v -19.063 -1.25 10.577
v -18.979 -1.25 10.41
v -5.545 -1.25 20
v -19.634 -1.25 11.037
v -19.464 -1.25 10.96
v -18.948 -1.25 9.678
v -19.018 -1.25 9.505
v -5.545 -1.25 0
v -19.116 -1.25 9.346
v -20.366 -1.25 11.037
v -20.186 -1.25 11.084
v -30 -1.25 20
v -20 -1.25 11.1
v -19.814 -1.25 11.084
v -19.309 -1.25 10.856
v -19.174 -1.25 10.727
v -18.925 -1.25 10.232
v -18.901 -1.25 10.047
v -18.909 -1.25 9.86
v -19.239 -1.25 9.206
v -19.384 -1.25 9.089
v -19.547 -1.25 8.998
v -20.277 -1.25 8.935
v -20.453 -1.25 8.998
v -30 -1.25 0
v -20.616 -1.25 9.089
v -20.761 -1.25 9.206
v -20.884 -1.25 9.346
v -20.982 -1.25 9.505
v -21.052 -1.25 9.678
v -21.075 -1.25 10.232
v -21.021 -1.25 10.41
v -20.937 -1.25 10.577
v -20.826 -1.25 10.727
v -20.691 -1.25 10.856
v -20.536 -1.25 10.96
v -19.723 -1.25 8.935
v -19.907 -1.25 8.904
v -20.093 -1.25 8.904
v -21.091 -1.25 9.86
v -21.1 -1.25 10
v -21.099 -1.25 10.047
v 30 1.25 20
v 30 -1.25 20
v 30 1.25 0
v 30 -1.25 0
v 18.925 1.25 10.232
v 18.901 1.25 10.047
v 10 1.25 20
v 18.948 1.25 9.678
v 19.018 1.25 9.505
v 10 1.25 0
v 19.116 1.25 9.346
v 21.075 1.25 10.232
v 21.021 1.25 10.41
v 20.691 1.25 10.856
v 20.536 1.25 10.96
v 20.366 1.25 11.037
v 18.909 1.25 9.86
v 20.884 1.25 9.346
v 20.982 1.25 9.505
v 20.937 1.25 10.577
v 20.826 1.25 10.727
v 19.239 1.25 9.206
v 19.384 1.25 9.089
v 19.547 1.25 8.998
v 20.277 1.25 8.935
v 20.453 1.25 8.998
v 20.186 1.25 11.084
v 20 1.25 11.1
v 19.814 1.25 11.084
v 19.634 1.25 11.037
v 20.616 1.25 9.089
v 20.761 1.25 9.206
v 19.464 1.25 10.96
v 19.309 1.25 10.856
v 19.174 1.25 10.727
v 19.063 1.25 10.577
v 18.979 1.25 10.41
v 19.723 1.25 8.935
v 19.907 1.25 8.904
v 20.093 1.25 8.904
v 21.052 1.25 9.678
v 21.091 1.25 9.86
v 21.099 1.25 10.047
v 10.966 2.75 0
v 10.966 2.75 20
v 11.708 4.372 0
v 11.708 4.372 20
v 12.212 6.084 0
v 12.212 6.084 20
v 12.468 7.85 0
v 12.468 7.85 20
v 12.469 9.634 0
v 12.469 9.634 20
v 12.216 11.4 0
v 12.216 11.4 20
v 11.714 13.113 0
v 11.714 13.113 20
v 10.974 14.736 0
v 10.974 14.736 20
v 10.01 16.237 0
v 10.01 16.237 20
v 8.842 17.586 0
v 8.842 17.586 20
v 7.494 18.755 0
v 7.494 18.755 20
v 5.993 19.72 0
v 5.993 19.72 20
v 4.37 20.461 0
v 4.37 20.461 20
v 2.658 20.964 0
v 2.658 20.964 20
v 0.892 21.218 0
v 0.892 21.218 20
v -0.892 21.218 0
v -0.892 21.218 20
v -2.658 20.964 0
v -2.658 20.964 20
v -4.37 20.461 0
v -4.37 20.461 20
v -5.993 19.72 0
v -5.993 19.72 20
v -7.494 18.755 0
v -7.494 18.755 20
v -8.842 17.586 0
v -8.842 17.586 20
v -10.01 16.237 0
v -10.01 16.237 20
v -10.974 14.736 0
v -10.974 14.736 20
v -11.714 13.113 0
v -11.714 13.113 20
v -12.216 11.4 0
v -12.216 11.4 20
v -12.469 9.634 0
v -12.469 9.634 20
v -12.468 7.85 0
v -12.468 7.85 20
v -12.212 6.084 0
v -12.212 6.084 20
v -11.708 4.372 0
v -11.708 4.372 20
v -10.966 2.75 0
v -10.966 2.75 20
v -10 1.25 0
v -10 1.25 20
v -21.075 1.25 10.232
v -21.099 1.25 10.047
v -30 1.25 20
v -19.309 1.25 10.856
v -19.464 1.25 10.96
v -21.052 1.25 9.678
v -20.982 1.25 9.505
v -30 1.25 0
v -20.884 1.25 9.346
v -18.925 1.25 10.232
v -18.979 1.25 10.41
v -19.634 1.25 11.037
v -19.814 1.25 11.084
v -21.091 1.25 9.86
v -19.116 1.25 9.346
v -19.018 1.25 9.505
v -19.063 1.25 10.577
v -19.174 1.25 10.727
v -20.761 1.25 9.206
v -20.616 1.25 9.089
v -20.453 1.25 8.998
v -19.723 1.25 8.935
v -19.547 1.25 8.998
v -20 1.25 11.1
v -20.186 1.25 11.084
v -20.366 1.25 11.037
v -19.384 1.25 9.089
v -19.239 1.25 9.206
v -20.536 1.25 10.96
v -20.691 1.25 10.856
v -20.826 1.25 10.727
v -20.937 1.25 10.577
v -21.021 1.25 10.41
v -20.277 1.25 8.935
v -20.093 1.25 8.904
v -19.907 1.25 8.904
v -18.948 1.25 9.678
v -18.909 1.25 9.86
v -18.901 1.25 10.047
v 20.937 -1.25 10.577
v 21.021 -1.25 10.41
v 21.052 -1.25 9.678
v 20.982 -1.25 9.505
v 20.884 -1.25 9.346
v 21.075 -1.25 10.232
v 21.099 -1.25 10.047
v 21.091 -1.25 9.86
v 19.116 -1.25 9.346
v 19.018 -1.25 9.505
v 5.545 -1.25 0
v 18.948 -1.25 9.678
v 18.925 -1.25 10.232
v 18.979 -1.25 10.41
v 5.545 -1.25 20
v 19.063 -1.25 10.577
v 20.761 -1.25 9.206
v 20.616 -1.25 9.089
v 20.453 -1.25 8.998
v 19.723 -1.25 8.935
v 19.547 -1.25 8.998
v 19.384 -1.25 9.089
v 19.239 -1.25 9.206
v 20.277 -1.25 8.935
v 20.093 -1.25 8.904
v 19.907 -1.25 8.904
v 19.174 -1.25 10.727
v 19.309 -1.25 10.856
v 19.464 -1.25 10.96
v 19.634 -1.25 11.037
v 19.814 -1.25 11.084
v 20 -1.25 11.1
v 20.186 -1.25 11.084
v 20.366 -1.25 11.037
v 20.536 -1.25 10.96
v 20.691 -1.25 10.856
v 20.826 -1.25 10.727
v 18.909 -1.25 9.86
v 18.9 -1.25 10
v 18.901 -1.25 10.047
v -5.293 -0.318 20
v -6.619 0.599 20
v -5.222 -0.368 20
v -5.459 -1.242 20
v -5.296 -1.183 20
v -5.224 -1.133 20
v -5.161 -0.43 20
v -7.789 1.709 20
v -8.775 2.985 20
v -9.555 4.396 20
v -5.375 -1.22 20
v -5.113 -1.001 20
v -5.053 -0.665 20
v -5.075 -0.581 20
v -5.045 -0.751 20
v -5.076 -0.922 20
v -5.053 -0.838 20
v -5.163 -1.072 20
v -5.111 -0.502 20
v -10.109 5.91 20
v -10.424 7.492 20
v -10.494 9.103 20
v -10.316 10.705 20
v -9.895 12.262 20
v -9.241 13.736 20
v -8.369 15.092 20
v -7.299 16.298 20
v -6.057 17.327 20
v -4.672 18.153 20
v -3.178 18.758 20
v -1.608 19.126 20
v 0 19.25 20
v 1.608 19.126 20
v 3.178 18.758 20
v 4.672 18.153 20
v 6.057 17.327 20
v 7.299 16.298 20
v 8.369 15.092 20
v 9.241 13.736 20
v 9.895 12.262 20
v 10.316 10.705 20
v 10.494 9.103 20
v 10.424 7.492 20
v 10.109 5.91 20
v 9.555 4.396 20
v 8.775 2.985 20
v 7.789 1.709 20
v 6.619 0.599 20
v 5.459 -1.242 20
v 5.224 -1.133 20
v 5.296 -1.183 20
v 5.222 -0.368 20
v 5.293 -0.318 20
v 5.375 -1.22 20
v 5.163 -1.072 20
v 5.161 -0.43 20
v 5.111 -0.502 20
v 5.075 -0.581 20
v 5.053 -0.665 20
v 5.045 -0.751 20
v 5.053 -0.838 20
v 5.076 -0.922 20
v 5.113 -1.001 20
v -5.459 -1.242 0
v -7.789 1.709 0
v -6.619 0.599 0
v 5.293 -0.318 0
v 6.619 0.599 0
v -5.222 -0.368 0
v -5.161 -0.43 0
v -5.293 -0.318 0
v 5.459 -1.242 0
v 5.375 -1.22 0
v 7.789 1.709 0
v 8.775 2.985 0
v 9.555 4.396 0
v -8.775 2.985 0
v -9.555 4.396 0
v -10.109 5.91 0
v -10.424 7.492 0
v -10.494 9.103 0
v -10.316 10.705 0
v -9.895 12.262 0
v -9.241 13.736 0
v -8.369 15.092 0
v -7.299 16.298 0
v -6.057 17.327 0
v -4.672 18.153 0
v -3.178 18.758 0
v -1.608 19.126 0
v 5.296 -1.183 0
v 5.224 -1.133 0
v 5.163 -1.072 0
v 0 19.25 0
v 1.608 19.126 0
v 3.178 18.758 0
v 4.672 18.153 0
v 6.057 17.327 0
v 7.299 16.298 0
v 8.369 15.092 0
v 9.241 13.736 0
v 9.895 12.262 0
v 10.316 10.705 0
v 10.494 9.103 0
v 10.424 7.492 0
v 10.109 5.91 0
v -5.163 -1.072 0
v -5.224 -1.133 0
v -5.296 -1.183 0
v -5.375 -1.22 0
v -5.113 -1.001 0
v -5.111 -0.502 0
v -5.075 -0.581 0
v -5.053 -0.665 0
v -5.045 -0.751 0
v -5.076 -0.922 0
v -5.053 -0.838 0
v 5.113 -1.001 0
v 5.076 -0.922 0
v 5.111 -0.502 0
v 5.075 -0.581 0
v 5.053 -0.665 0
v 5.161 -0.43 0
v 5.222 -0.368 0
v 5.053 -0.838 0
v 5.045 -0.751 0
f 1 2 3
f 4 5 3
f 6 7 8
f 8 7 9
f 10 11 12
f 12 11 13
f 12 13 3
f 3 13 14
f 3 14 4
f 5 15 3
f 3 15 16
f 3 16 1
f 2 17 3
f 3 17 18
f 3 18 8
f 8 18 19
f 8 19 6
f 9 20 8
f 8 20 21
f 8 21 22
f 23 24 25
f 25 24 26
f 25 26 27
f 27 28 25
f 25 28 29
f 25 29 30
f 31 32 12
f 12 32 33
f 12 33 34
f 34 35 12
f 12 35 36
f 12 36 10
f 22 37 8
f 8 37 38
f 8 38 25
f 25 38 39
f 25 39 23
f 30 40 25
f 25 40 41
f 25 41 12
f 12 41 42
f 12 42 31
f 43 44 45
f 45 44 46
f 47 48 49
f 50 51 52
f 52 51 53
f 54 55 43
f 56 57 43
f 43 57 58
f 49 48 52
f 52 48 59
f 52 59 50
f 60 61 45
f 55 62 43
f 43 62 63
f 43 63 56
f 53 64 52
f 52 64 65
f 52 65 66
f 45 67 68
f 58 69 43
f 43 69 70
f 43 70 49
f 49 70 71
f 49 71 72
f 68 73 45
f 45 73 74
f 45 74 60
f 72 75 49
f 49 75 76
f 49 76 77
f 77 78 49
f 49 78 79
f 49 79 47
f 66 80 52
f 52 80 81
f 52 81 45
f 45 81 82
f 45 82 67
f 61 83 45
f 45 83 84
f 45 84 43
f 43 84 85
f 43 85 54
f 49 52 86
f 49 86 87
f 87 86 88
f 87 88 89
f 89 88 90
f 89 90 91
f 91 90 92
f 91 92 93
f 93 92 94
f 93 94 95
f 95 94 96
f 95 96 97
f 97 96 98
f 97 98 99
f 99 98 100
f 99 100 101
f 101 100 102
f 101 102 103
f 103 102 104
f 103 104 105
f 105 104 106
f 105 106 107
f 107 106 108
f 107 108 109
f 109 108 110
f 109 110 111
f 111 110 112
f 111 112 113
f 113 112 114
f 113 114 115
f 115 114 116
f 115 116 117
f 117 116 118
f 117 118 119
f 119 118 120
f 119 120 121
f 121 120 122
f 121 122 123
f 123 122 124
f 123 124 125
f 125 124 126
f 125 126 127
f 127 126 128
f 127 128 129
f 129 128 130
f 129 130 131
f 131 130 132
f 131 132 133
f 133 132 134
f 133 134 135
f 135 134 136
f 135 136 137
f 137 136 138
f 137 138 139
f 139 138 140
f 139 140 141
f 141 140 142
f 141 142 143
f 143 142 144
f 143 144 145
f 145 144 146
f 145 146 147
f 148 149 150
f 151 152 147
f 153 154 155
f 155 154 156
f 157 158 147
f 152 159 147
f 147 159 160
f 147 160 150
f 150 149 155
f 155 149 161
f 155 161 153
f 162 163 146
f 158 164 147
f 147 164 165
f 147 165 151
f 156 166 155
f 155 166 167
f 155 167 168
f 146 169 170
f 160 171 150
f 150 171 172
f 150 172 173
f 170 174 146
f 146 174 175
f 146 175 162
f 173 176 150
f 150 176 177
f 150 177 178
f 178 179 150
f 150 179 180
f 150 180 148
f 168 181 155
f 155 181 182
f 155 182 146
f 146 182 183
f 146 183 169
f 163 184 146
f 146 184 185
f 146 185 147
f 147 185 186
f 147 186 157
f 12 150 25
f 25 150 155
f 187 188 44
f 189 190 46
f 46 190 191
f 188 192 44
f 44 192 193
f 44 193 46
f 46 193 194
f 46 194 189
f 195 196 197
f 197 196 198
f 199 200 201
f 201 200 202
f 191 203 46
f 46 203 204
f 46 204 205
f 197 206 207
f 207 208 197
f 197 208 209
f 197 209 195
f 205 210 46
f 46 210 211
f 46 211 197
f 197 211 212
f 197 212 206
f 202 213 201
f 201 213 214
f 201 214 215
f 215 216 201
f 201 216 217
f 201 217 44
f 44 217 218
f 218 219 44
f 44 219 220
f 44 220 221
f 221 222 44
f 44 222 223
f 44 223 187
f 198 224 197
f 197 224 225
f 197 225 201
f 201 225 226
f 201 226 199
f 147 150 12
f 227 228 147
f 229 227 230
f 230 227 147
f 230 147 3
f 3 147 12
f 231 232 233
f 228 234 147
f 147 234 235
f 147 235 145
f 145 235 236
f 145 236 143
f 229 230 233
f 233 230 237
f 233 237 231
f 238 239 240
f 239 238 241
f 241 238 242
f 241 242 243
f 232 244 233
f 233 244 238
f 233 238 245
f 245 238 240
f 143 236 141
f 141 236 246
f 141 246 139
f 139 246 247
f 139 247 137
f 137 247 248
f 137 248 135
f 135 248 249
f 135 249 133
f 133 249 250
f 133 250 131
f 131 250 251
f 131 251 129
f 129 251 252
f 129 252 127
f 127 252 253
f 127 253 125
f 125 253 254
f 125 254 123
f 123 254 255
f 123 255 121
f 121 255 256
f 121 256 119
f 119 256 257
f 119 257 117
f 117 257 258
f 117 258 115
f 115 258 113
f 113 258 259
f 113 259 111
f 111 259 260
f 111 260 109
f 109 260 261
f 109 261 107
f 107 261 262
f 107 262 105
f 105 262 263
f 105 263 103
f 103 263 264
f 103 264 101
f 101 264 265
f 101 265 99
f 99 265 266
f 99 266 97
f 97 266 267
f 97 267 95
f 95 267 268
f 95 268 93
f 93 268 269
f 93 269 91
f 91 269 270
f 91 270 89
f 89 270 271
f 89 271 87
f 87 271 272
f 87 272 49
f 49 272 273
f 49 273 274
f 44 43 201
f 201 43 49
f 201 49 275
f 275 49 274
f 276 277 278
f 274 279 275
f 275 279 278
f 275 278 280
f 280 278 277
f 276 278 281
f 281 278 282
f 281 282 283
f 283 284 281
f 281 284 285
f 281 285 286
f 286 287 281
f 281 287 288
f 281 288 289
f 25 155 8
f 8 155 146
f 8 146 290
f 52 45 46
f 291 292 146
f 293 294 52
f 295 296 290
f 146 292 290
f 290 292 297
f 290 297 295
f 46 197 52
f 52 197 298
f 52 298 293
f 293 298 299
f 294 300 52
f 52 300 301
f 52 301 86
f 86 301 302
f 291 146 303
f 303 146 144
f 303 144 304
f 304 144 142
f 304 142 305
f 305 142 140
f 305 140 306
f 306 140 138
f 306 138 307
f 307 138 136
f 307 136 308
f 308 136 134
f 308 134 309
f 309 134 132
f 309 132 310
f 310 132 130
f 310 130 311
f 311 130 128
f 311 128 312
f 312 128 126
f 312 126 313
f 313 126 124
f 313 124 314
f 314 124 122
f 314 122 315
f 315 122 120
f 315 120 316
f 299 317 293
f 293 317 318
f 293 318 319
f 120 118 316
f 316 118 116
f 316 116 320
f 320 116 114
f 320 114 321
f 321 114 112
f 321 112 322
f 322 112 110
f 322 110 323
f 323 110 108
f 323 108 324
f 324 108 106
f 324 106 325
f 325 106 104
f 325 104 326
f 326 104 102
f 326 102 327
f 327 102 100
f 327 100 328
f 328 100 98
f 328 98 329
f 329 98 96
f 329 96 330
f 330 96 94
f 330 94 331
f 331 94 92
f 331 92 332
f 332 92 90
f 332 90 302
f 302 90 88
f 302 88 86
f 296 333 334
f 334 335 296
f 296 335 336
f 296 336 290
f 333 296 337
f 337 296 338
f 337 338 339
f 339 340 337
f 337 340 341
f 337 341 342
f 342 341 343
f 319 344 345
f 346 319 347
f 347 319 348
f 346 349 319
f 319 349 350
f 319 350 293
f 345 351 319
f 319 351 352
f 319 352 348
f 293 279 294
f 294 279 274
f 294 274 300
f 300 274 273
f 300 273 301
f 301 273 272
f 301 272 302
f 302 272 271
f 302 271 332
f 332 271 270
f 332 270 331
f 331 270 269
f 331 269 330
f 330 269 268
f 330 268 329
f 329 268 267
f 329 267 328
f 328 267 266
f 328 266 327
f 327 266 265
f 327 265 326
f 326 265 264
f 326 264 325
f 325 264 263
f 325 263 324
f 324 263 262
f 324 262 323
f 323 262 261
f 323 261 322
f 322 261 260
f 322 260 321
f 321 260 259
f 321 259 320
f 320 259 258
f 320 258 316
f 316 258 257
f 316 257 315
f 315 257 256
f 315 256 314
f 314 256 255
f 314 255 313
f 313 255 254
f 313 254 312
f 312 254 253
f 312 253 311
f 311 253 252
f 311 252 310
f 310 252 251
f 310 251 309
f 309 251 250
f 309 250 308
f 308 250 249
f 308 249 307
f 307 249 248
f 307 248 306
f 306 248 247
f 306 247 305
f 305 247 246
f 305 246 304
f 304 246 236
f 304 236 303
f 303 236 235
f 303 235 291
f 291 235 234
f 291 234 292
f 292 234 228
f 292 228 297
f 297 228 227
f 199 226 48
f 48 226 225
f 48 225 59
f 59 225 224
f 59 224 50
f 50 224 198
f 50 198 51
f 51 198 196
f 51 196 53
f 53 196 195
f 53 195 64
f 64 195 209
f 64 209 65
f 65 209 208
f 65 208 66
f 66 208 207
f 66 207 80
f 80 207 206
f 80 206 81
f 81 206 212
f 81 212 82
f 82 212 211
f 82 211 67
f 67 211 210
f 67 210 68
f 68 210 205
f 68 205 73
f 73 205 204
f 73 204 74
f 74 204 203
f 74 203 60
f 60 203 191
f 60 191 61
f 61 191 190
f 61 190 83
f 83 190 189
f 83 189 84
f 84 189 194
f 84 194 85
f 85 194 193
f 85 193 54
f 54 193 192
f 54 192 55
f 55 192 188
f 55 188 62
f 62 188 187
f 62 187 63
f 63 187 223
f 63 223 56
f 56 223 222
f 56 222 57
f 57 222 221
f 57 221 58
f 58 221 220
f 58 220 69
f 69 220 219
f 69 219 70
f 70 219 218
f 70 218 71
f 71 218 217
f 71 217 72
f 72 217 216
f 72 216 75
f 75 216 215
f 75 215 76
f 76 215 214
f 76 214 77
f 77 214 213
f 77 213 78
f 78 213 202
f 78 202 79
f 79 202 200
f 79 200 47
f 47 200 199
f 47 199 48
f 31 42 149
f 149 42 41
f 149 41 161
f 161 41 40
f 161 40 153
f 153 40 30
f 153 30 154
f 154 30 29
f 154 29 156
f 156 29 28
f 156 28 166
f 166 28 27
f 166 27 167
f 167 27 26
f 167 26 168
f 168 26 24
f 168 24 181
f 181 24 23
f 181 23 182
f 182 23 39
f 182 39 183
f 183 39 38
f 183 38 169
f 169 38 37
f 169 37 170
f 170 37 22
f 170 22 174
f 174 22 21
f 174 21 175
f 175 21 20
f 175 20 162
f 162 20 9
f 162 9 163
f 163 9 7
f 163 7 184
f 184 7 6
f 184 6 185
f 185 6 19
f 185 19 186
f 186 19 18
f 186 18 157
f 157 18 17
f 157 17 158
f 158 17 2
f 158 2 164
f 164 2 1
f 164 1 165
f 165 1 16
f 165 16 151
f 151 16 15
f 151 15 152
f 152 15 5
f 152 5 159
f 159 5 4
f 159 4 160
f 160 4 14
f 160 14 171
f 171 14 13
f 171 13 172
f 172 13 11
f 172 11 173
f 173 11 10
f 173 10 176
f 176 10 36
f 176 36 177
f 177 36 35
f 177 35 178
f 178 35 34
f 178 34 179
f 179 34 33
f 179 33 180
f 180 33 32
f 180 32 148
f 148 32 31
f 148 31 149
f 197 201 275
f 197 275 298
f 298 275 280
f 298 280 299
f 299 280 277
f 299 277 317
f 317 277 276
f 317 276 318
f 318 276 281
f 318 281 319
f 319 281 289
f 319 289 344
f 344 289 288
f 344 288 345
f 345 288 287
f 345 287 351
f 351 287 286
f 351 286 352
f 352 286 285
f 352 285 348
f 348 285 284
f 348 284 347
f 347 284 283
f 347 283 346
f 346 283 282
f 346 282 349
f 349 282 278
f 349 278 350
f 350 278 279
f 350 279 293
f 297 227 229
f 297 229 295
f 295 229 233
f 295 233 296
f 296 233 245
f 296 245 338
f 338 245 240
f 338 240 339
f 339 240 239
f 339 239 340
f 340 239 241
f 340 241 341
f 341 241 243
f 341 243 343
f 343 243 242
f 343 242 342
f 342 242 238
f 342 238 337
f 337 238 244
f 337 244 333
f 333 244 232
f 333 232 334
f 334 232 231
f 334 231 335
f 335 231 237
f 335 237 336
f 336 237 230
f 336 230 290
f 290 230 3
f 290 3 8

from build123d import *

# Parameters (mm, degrees)
BOSS_EXTRUDE1_DEPTH = 20
SKETCH3_R           = 10.5
CUT_EXTRUDE1_DEPTH  = 42.851672607
SKETCH4_R           = 1.1
CUT_EXTRUDE2_DEPTH  = 2.5
FILLET1_R           = 0.5


with BuildPart() as part:
    # Sketch1 → Boss-Extrude1 (new body)
    with BuildSketch(Plane.XY):
        with BuildLine():
            Line((10, 1.25), (30, 1.25))
            Line((30, 1.25), (30, -1.25))
            Line((30, -1.25), (-30, -1.25))
            Line((-30, -1.25), (-30, 1.25))
            Line((-30, 1.25), (-10, 1.25))
            ThreePointArc((-10, 1.25), (0, 21.25), (10, 1.25))
        make_face()
    extrude(amount=BOSS_EXTRUDE1_DEPTH)

    # Sketch3 → Cut-Extrude1 (cut, through all)
    with BuildSketch(Plane.XY.offset(20)):
        with Locations((0, 8.75)):
            Circle(SKETCH3_R)
    extrude(amount=-CUT_EXTRUDE1_DEPTH, mode=Mode.SUBTRACT)

    # Sketch4 → Cut-Extrude2 (cut)
    with BuildSketch(Plane(origin=(0, 1.25, 0), x_dir=(1, 0, 0), z_dir=(0, 1, 0))):
        with Locations(Location((-20, -10, 0), (0, 0, 270))):
            Circle(SKETCH4_R)
        with Locations(Location((20, -10, 0), (0, 0, 270))):
            Circle(SKETCH4_R)
    extrude(amount=-CUT_EXTRUDE2_DEPTH, mode=Mode.SUBTRACT)

    # Fillet1
    fillet1_edges = [part.edges().sort_by_distance(p)[0] for p in [
        (-3.201562119, -1.25, 10),
        (3.201562119, -1.25, 10),
    ]]
    fillet(fillet1_edges, radius=FILLET1_R)


solid = part.part
